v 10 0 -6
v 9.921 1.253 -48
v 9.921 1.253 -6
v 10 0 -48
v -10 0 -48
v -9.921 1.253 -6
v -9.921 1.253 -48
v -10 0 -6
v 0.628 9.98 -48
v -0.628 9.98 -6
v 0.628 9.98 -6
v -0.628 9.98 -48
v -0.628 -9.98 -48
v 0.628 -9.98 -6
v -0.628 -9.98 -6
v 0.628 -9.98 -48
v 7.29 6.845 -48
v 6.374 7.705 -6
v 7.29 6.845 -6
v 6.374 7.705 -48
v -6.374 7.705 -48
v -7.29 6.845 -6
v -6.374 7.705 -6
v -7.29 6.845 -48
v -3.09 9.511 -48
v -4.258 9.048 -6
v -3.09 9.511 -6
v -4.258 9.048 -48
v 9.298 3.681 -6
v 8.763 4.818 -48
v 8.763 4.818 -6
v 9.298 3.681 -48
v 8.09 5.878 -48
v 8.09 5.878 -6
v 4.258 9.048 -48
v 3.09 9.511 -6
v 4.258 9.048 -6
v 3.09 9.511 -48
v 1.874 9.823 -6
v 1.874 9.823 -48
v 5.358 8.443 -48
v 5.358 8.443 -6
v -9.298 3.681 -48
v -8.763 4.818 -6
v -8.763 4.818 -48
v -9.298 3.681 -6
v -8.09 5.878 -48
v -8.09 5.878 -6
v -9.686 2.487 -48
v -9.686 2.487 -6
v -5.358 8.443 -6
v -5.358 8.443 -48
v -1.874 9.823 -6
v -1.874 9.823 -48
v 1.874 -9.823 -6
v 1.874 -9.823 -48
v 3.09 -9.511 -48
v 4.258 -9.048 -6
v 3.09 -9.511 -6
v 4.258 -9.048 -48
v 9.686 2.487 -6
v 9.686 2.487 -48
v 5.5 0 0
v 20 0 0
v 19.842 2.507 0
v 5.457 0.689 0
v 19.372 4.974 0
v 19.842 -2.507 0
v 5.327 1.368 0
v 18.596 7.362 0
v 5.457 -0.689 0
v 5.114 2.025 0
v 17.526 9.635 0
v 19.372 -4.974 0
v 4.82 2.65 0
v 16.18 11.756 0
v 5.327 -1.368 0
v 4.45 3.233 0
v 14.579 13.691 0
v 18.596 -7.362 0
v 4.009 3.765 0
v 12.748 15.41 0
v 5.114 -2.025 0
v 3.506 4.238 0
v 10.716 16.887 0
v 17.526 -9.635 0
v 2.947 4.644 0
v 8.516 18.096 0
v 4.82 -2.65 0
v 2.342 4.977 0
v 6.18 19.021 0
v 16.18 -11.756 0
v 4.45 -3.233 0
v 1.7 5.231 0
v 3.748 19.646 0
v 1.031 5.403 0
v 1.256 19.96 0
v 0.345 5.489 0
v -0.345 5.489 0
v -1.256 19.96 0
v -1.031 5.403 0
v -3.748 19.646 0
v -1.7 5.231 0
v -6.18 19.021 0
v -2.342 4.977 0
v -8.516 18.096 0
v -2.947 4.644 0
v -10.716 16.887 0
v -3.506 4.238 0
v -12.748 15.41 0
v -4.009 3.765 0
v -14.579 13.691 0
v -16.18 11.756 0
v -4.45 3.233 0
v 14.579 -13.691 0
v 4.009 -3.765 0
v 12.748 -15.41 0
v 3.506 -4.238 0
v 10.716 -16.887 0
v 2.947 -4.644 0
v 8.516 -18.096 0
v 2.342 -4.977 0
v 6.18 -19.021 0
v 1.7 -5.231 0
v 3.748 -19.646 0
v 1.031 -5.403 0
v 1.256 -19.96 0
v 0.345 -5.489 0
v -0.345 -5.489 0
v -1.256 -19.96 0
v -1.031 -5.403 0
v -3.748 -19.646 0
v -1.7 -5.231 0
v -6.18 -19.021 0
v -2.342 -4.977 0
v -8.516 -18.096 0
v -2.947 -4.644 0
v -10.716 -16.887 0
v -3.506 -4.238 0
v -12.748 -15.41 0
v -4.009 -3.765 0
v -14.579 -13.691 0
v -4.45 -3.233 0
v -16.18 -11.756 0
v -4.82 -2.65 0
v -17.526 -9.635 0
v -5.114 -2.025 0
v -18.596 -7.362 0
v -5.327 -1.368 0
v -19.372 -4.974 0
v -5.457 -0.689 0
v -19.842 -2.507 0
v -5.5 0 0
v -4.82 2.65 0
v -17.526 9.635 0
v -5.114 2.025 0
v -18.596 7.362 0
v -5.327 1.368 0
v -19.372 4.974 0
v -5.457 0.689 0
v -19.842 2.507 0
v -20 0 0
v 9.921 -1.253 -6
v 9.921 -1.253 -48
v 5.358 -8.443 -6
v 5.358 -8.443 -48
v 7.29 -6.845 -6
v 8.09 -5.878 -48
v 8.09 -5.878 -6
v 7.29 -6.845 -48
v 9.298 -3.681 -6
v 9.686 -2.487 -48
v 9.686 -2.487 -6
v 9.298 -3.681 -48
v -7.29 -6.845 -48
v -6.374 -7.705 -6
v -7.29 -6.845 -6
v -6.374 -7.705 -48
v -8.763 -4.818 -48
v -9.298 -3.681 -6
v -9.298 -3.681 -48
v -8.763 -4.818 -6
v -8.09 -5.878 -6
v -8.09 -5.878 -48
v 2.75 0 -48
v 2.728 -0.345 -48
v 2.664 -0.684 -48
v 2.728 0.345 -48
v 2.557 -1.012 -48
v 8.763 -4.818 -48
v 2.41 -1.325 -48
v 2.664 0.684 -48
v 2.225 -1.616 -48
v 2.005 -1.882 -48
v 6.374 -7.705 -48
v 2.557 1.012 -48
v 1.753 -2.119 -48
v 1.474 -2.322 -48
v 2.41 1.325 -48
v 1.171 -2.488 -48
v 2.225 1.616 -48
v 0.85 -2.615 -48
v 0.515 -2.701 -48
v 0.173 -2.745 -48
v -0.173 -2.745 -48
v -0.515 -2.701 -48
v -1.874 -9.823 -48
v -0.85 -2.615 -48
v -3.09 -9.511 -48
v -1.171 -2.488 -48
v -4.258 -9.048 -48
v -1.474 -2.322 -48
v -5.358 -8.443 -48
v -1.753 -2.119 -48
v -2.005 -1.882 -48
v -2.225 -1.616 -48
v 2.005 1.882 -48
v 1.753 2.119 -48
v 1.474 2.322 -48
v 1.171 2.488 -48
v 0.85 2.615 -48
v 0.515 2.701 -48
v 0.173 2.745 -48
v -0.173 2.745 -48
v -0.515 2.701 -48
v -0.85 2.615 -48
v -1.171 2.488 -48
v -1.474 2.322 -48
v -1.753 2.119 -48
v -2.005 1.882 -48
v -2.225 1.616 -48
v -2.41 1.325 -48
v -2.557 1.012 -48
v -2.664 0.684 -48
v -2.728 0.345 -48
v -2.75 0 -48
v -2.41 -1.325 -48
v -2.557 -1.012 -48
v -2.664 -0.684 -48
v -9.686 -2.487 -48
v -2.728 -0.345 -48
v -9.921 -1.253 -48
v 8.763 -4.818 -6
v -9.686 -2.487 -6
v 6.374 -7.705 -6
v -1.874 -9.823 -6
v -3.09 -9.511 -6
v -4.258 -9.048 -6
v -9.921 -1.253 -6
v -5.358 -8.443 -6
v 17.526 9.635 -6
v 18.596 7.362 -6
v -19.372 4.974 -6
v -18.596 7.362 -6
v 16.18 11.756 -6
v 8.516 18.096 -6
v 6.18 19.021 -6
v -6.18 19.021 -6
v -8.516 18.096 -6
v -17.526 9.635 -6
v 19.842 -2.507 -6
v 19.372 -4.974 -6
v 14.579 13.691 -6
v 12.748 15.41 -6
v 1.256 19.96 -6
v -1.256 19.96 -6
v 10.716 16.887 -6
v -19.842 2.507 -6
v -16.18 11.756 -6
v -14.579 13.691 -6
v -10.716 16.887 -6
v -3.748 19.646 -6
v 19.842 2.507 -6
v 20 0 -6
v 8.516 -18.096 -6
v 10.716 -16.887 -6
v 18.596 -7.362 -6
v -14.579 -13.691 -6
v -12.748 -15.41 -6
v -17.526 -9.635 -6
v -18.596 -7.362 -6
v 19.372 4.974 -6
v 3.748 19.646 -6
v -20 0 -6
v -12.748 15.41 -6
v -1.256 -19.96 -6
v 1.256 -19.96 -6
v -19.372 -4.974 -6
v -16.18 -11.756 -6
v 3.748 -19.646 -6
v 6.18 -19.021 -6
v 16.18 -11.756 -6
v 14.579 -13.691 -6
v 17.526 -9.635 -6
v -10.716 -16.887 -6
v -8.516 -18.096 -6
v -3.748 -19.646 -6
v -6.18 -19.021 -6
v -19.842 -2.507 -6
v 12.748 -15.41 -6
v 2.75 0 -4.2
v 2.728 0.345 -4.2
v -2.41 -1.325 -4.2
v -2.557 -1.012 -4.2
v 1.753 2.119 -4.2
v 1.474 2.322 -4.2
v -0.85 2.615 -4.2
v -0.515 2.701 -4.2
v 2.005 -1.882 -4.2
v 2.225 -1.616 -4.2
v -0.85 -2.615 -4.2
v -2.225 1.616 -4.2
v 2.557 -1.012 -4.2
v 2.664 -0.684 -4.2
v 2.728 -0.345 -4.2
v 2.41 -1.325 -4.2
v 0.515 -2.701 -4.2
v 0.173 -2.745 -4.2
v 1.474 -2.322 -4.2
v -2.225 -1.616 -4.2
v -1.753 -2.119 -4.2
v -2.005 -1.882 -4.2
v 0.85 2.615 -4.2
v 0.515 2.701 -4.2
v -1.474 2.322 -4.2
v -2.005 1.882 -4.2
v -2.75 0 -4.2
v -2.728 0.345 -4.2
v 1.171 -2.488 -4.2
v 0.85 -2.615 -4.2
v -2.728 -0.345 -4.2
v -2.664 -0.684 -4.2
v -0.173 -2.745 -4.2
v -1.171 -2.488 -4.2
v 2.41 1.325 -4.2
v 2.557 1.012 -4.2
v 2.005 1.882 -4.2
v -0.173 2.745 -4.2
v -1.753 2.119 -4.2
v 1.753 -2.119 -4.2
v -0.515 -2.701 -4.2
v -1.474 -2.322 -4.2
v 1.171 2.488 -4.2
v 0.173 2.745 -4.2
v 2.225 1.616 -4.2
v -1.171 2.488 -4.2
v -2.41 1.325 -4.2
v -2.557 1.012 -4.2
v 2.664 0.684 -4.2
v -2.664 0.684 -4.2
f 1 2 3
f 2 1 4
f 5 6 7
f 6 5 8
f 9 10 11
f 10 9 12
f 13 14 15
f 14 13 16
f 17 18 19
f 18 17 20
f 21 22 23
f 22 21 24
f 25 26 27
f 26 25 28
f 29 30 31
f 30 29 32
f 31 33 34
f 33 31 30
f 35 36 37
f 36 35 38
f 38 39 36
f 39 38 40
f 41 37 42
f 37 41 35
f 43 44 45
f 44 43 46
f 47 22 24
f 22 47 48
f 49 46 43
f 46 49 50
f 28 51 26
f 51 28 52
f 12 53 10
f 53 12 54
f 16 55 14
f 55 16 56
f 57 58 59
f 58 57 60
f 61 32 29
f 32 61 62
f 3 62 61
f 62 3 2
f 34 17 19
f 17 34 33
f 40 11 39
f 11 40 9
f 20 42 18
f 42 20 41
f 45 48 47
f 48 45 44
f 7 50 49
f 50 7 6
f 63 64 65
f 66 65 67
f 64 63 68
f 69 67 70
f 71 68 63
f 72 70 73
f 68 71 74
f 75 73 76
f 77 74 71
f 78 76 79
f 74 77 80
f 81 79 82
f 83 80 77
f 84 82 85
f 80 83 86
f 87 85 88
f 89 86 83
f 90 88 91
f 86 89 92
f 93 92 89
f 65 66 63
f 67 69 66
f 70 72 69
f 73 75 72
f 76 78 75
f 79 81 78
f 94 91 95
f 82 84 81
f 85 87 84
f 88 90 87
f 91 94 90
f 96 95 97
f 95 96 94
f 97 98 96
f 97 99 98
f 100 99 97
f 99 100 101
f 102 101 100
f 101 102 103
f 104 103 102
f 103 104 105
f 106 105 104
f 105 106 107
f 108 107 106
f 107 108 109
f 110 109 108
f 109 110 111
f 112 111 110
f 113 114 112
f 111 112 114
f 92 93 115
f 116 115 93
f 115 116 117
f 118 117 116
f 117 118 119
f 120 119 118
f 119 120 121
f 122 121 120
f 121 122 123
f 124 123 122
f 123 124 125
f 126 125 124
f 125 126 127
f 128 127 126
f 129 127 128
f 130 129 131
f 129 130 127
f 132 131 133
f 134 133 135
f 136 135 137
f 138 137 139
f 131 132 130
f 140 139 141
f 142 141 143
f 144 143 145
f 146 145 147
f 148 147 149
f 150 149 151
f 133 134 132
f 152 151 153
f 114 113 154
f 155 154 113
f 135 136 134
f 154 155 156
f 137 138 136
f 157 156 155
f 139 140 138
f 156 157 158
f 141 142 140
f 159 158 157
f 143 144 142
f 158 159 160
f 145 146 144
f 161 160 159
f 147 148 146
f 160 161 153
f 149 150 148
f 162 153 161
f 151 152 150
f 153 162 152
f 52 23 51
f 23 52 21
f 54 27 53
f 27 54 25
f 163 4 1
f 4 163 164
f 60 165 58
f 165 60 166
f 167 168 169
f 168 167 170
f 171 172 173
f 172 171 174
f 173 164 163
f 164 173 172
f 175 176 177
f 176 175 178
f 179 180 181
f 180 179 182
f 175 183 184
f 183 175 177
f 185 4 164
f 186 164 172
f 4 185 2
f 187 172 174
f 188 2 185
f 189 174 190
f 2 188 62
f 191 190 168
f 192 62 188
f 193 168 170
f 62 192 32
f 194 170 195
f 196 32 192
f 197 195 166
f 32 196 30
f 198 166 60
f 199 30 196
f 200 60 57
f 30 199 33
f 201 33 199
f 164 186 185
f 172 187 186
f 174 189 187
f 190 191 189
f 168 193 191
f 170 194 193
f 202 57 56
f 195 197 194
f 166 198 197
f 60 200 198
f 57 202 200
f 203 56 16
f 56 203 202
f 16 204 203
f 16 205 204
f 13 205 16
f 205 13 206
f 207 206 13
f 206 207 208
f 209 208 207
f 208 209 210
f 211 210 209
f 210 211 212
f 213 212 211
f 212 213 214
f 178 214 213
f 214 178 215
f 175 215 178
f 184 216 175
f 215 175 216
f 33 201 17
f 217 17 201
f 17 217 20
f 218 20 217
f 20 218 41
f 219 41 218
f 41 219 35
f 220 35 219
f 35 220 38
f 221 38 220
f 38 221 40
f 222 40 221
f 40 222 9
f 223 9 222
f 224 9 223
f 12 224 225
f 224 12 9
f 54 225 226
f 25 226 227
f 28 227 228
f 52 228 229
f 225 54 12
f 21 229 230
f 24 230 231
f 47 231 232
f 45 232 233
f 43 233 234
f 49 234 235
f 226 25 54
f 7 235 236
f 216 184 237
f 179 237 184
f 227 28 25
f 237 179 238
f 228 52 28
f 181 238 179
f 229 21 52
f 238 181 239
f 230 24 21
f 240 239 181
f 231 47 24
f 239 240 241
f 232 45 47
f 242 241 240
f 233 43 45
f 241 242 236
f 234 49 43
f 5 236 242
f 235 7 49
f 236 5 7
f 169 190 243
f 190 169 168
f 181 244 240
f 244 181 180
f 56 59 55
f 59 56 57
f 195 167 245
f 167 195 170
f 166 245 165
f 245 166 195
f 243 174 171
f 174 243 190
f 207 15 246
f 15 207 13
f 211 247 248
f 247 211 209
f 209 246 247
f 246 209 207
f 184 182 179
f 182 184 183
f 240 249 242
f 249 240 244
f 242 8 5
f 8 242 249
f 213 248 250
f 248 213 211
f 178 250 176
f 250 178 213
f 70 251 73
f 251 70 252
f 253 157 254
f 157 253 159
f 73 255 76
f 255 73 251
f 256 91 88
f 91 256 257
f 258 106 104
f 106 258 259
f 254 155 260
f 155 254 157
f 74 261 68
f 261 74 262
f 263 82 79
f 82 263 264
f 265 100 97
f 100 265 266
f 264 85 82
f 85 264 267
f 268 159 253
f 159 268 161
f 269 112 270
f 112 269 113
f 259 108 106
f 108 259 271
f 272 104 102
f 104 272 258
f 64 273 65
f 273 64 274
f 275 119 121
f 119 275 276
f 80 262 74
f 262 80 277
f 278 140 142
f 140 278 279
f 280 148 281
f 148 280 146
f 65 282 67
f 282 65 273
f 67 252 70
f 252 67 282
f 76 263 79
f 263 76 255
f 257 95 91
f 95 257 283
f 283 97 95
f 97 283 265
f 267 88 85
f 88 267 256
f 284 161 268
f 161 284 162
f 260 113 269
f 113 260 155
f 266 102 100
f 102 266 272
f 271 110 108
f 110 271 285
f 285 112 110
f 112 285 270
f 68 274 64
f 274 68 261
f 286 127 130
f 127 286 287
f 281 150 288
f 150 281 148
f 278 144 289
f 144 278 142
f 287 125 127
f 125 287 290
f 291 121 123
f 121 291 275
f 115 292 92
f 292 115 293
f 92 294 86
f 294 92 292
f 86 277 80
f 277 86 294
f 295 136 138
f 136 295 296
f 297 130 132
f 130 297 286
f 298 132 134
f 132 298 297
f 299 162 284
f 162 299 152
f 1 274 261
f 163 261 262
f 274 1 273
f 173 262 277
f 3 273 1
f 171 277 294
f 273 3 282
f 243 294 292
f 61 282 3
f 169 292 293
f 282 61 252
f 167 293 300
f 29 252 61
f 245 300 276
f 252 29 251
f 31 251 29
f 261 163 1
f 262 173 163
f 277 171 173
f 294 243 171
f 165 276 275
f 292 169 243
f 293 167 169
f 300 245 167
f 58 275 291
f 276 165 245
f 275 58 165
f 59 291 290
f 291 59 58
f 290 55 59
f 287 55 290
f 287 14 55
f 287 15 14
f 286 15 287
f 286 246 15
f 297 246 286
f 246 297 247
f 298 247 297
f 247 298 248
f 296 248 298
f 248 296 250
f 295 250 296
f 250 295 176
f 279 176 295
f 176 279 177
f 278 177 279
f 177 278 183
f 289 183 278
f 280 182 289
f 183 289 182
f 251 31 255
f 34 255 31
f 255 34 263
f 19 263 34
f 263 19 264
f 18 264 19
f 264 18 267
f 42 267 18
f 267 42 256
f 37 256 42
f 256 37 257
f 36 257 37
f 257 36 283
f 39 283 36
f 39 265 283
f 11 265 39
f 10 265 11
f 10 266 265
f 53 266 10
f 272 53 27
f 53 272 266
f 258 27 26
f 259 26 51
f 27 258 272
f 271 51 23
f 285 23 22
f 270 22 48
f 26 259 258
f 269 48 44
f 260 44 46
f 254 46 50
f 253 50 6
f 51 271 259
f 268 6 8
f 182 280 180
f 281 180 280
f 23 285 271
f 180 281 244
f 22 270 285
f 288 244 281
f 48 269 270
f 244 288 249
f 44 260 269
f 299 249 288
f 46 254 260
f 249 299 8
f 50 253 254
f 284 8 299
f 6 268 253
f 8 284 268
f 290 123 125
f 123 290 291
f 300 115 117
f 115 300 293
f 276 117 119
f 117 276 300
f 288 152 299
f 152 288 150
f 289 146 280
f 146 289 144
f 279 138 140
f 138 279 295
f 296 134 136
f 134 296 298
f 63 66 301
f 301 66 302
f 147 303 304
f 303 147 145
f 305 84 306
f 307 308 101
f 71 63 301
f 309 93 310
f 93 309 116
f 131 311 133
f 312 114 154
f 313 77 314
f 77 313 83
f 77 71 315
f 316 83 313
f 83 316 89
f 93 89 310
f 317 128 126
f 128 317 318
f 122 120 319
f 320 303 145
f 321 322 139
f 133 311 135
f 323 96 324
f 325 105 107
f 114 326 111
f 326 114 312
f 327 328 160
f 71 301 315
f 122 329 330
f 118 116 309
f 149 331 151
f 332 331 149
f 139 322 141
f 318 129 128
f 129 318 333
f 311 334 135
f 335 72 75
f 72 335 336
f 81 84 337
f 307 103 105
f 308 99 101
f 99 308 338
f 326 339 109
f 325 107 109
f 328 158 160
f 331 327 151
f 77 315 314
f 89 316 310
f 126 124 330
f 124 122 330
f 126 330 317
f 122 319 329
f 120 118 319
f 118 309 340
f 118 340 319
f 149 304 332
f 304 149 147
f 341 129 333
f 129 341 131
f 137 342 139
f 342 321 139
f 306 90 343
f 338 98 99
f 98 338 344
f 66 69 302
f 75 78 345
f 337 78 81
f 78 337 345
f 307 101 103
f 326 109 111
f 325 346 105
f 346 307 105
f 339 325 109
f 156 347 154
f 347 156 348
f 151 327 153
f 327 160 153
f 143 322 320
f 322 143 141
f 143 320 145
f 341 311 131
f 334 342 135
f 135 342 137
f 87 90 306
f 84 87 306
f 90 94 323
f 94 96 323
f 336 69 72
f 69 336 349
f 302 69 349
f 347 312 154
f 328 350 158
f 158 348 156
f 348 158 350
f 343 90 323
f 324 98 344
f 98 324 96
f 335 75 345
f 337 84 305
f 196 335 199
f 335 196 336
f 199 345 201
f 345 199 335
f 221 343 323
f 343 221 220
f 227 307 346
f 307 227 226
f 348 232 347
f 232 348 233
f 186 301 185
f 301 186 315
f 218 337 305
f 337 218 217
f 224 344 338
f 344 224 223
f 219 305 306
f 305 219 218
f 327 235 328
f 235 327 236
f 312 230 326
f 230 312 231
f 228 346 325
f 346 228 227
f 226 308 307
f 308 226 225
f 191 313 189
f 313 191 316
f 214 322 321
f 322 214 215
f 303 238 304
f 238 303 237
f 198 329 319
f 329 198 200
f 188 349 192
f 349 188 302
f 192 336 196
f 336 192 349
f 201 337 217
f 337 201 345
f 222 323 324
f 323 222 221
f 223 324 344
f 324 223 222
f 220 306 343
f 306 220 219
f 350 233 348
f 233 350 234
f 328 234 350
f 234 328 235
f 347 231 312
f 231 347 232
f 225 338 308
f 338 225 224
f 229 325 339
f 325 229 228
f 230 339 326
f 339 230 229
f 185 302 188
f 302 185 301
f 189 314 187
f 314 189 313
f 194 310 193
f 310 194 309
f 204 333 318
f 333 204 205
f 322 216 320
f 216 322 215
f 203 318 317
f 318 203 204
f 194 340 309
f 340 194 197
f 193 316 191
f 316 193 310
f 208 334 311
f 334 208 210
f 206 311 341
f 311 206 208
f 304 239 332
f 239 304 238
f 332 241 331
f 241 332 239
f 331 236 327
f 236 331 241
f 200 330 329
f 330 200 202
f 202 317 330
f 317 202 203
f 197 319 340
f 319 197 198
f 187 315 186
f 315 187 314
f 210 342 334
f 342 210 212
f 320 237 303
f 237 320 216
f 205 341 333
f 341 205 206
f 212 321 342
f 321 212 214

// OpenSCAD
$fn = 50;


difference() {
	union() {
		translate(v = [0, 0, -48.0000000000]) {
			cylinder(h = 48, r = 10.0000000000);
		}
		translate(v = [0, 0, -6.0000000000]) {
			cylinder(h = 6, r = 20.0000000000);
		}
	}
	union() {
		translate(v = [0, 0, 0]) {
			rotate(a = [0, 0, 0]) {
				difference() {
					union() {
						#translate(v = [0, 0, -48.0000000000]) {
							cylinder(h = 48, r = 2.2500000000);
						}
						#translate(v = [0, 0, -4.2000000000]) {
							cylinder(h = 4.2000000000, r = 10.0000000000, r1 = 2.7500000000, r2 = 5.5000000000);
						}
						#translate(v = [0, 0, -48.0000000000]) {
							cylinder(h = 48, r = 2.7500000000);
						}
						#translate(v = [0, 0, -48.0000000000]) {
							cylinder(h = 48, r = 2.2500000000);
						}
					}
					union();
				}
			}
		}
	}
}
